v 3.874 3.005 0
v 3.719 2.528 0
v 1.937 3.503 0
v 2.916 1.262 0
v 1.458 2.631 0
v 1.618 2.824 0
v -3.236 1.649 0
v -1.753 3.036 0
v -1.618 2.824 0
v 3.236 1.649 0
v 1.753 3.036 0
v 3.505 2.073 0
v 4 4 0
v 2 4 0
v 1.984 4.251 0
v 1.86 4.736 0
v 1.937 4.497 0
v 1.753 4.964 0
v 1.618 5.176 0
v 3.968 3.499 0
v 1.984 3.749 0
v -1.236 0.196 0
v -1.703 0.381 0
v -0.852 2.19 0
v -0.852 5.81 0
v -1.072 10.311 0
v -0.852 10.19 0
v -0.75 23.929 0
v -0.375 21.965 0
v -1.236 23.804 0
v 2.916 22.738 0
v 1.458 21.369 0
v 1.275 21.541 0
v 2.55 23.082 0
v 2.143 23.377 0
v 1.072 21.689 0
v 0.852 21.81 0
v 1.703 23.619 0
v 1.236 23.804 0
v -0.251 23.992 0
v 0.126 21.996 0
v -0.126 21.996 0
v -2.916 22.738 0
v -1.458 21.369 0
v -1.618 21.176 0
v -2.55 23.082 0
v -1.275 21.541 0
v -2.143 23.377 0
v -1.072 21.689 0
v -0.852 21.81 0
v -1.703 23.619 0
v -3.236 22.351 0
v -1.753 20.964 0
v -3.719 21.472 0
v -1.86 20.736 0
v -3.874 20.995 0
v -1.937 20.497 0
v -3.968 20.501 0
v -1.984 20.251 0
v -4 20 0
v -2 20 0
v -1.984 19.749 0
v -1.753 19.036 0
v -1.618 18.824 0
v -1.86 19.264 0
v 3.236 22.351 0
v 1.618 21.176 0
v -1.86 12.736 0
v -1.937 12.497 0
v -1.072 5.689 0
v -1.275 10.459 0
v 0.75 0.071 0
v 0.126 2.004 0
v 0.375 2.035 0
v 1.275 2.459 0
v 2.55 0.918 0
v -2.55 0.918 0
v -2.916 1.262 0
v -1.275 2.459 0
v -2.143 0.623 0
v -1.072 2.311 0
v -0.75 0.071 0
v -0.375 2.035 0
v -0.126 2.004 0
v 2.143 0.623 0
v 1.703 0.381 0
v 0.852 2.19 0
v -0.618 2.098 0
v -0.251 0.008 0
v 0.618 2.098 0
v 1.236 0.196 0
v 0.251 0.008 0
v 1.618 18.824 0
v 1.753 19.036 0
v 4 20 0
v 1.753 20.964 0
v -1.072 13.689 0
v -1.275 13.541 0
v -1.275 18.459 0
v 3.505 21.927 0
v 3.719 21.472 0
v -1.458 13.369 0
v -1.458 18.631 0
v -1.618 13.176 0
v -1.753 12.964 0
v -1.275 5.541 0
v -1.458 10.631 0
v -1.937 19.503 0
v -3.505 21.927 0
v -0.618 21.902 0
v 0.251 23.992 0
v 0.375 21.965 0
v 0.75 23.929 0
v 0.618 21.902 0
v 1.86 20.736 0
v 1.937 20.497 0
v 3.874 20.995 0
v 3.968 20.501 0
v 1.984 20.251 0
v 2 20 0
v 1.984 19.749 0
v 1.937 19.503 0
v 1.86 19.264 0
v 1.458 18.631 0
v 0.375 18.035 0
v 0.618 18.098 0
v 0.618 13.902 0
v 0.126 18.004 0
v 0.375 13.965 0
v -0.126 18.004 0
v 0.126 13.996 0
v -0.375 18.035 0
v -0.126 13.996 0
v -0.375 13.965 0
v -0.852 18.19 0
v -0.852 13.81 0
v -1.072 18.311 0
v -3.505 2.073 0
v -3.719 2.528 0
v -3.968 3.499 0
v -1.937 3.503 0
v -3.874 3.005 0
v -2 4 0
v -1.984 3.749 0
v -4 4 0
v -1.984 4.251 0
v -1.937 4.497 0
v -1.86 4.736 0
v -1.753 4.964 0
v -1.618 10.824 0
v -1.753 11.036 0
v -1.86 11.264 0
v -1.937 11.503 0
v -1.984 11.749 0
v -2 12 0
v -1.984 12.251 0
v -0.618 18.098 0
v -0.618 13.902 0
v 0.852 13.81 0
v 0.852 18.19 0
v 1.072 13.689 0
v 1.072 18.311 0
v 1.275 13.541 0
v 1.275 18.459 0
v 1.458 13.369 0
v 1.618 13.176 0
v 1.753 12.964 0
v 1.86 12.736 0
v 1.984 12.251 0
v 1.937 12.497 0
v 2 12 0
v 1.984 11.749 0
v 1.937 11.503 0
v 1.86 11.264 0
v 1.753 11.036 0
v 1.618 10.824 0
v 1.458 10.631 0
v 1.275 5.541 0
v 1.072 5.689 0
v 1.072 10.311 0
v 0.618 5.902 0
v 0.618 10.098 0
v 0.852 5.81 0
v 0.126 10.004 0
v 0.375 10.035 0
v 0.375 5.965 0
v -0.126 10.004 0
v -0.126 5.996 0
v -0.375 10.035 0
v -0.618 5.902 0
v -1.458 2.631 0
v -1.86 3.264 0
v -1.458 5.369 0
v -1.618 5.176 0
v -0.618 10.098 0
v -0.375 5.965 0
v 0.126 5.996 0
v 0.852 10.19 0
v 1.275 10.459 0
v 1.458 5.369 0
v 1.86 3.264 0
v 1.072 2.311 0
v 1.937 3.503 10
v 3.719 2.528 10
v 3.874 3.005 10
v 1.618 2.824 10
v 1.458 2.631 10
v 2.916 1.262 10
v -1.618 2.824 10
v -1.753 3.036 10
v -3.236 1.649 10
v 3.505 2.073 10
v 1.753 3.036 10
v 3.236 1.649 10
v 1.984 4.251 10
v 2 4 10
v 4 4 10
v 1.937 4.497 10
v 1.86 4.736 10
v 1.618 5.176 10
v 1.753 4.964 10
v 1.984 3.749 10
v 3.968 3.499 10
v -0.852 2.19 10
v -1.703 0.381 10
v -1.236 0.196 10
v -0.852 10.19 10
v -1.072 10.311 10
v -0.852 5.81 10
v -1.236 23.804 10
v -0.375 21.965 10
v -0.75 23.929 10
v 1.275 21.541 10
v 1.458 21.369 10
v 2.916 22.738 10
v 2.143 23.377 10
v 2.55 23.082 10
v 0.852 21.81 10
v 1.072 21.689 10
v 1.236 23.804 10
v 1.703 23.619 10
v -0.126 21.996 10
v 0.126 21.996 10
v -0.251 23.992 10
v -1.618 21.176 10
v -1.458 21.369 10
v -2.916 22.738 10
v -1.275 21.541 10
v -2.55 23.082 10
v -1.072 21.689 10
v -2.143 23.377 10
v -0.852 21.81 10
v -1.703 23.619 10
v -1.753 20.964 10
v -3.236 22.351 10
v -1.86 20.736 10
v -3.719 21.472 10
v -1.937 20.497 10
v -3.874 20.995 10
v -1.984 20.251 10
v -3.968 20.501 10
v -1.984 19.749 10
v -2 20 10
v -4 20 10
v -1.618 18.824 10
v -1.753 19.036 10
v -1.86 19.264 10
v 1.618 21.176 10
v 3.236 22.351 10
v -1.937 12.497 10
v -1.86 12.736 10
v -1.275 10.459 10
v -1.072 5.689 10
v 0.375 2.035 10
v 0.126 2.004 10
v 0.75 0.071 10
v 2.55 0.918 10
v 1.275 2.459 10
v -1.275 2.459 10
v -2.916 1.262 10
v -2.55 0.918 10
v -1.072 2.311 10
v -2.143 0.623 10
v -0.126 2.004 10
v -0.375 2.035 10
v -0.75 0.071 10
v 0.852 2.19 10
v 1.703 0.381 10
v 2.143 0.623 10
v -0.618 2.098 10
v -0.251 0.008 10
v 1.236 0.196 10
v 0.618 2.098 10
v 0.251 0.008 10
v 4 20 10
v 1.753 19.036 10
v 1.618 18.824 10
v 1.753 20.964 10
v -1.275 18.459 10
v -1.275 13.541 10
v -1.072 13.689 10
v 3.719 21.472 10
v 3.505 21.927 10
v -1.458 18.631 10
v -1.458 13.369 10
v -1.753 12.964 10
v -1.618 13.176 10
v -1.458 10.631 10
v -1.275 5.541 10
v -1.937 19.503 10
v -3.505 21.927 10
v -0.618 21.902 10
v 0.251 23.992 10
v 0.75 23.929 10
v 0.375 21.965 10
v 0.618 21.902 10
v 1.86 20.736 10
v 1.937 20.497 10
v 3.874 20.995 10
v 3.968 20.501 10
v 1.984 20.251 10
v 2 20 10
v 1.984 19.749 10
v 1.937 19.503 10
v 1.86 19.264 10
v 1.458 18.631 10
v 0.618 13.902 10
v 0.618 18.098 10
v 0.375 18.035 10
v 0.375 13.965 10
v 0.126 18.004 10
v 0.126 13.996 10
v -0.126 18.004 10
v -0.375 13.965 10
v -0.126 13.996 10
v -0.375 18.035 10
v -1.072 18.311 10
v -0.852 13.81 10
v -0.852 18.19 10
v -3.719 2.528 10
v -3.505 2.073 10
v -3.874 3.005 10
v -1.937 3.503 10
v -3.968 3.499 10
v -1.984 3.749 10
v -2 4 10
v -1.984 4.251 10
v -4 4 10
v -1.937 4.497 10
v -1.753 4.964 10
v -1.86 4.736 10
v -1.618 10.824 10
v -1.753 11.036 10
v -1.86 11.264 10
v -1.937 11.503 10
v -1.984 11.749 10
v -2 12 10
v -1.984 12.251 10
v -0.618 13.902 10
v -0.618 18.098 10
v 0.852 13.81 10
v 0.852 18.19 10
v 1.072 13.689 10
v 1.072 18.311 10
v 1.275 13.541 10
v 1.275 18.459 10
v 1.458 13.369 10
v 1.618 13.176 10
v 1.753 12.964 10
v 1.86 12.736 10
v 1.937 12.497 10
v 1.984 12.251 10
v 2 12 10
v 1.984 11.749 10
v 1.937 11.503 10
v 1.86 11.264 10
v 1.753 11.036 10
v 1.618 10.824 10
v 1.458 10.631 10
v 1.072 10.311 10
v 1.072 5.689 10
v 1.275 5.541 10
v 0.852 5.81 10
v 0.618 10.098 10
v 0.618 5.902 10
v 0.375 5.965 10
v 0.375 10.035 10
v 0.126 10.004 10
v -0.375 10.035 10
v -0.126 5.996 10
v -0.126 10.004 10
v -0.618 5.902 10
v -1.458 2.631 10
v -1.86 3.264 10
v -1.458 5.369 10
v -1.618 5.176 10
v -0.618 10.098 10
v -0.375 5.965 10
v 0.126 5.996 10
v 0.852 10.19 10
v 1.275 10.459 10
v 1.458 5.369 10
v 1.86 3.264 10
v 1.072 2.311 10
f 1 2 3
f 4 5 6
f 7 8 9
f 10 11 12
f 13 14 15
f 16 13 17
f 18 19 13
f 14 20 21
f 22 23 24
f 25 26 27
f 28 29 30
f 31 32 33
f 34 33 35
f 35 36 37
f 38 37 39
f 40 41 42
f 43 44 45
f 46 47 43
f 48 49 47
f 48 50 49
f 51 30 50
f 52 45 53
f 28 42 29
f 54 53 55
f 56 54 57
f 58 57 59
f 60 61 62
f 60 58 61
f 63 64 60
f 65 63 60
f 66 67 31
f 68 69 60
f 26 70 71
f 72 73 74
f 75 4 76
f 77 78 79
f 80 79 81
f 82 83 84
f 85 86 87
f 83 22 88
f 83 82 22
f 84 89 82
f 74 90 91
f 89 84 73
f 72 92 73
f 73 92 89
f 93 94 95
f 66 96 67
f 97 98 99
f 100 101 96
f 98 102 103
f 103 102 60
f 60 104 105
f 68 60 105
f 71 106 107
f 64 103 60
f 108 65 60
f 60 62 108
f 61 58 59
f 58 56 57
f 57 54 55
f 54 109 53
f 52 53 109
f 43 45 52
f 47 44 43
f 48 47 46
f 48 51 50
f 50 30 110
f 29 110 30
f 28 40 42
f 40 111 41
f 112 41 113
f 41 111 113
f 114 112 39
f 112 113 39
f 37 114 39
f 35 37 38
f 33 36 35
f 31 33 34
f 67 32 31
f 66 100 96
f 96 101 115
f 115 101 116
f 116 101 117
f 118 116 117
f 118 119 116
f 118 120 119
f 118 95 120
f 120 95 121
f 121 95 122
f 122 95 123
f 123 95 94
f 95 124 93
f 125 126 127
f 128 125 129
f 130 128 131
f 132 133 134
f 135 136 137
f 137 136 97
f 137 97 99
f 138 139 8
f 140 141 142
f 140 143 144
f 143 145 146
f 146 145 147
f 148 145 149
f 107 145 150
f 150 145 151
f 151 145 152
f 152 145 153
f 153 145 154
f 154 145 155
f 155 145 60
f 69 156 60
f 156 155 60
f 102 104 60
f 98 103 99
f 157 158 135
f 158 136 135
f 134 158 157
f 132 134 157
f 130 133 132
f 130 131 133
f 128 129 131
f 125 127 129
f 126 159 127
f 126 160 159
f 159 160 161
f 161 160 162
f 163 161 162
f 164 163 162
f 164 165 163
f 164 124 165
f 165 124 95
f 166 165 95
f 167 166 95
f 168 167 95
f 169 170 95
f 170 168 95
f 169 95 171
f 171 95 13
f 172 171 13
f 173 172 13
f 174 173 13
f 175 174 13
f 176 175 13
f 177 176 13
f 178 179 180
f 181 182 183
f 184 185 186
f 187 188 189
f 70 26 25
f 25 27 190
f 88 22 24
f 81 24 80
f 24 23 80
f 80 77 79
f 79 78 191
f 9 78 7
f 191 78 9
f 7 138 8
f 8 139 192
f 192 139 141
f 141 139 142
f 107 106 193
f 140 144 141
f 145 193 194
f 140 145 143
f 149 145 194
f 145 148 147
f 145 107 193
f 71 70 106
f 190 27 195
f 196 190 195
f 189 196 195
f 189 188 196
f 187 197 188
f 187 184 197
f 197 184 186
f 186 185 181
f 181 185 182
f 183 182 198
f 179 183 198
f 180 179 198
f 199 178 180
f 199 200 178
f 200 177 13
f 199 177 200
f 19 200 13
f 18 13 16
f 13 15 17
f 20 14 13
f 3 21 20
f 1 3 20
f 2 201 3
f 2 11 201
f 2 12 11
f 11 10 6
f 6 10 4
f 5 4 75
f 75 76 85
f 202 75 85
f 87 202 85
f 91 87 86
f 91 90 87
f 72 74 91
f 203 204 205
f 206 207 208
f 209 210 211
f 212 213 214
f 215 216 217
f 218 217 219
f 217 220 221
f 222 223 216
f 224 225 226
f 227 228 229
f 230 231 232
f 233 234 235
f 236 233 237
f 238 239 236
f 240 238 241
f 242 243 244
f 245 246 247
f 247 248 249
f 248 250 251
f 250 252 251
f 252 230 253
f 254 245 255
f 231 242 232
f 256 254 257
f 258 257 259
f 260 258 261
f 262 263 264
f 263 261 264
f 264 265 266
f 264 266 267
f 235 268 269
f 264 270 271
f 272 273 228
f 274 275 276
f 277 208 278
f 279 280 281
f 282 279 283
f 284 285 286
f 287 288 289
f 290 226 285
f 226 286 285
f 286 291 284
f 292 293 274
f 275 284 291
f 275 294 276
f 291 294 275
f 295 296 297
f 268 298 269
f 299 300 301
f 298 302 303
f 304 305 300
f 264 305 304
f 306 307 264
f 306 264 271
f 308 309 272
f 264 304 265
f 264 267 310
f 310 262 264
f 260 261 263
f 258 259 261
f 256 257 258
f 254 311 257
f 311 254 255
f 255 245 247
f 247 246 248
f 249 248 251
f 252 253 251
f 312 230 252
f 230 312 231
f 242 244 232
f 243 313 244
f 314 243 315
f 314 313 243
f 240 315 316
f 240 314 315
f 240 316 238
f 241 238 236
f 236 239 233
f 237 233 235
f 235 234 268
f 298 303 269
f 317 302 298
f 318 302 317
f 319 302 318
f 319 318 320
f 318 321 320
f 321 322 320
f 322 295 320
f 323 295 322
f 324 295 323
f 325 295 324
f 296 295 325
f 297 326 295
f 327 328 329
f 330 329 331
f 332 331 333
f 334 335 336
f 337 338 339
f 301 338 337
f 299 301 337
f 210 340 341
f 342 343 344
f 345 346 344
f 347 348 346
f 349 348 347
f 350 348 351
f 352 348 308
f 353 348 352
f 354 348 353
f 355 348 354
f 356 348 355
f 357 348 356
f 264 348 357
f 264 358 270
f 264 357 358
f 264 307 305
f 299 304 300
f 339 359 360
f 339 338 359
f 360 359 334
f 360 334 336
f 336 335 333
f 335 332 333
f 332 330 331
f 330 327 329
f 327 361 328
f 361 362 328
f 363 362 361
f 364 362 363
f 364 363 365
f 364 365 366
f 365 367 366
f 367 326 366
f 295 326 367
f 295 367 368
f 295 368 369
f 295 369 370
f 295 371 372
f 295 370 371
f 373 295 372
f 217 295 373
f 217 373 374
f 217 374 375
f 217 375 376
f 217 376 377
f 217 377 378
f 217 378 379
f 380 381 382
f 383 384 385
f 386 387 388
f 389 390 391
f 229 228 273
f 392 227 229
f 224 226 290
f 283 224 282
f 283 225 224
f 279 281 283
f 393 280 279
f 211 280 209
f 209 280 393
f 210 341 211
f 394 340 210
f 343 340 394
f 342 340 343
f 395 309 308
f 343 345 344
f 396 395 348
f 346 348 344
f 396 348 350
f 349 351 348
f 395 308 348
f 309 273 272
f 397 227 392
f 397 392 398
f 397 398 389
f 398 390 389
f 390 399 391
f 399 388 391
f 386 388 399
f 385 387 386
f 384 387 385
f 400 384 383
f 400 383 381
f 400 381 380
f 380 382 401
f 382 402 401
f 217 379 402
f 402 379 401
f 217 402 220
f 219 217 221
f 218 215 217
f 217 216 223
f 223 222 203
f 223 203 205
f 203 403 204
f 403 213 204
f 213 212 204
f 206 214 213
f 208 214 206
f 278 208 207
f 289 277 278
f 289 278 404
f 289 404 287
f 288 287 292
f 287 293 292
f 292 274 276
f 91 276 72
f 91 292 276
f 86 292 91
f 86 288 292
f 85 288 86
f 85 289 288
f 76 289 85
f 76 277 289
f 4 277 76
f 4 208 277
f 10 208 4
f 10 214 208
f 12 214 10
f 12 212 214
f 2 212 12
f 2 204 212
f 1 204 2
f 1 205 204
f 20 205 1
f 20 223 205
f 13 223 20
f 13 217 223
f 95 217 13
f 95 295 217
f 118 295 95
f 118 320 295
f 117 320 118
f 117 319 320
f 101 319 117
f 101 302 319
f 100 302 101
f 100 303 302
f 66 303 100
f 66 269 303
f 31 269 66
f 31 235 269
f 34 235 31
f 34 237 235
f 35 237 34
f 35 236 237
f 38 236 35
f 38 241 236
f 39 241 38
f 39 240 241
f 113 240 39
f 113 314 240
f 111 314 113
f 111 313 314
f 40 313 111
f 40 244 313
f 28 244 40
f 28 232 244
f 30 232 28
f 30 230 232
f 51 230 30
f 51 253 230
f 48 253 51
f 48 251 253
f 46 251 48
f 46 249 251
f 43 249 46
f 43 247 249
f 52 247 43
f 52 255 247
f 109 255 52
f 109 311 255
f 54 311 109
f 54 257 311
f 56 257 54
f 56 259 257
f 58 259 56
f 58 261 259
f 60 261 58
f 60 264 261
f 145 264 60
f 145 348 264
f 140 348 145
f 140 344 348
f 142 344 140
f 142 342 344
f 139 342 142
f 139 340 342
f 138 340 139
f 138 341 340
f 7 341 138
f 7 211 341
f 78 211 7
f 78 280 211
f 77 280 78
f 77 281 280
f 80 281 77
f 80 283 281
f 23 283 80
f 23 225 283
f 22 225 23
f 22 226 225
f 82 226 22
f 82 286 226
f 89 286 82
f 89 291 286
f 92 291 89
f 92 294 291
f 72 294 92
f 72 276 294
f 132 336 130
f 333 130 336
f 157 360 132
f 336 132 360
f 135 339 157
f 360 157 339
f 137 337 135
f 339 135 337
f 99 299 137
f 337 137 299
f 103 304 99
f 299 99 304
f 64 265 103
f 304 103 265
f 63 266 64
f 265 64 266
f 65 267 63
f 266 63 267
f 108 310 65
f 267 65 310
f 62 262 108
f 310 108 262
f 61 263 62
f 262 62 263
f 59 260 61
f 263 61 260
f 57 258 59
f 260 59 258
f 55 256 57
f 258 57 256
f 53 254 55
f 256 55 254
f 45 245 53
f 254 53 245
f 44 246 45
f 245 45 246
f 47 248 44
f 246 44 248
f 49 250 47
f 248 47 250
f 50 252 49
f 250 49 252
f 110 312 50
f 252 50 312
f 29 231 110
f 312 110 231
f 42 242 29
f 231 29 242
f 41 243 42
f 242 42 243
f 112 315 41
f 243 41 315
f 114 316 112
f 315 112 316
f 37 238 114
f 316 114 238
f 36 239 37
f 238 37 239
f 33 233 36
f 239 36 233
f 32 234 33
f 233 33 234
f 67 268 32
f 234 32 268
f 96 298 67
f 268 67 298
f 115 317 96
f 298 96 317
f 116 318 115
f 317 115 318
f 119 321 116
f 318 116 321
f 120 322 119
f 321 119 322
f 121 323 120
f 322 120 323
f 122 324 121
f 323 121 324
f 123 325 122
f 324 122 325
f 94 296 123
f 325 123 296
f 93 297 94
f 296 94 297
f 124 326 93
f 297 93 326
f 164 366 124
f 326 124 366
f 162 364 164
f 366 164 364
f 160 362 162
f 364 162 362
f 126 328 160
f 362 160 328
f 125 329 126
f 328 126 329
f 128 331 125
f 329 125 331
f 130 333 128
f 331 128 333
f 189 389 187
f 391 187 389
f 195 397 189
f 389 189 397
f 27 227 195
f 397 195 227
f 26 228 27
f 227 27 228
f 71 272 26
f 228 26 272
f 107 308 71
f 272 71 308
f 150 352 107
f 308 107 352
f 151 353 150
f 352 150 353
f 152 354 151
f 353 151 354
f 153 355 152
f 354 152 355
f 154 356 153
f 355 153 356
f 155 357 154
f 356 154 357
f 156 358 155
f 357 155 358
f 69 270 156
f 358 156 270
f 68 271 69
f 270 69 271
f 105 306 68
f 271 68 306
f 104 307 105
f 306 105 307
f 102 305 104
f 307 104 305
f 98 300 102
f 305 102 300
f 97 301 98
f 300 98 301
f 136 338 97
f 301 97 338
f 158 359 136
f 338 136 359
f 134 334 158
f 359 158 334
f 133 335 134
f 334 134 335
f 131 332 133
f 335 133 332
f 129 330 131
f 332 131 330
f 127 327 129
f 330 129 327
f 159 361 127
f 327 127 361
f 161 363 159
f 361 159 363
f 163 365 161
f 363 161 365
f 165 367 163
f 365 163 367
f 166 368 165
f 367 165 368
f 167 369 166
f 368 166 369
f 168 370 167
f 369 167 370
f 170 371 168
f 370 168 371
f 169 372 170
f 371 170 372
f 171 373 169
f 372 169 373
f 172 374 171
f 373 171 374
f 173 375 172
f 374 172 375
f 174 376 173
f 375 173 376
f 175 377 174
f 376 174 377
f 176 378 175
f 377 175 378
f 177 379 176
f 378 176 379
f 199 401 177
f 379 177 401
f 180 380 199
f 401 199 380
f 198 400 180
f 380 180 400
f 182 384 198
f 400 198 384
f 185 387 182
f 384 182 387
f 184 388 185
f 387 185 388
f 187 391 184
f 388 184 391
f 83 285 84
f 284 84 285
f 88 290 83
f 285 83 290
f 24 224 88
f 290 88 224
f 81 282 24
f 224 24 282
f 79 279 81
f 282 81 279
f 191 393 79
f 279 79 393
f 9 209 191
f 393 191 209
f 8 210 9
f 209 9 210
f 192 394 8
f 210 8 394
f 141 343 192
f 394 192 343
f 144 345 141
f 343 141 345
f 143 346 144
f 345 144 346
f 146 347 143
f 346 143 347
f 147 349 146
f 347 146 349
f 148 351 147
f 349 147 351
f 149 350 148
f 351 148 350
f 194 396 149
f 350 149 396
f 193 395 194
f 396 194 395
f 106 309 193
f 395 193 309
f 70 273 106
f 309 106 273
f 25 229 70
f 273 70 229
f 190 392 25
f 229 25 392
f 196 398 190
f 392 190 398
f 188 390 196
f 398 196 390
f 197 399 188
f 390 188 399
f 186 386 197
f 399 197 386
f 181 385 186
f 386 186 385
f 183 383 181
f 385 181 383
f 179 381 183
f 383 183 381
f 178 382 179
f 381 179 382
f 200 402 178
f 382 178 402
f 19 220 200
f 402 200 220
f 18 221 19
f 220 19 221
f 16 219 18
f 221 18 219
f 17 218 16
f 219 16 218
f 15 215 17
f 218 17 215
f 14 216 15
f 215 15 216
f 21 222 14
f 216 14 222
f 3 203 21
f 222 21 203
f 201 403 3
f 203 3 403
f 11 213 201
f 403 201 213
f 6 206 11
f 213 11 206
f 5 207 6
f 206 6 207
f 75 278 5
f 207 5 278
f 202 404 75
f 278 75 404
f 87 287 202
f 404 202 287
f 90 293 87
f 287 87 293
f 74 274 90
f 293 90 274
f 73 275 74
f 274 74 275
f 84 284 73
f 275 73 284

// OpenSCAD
$fn = 50;

hole   = 4/2;
radius = 8/2;

linear_extrude(10)
difference(){
hull(){
	translate([0, radius, 0])
	circle(radius);
	translate([0,3*radius,0])
	circle(radius);
	translate([0,5*radius,0])
	circle(radius);
}
translate([0, radius, 0])
	circle(hole);
translate([0, 3*radius, 0])
	circle(hole);
translate([0, 5*radius, 0])
	circle(hole);
}
